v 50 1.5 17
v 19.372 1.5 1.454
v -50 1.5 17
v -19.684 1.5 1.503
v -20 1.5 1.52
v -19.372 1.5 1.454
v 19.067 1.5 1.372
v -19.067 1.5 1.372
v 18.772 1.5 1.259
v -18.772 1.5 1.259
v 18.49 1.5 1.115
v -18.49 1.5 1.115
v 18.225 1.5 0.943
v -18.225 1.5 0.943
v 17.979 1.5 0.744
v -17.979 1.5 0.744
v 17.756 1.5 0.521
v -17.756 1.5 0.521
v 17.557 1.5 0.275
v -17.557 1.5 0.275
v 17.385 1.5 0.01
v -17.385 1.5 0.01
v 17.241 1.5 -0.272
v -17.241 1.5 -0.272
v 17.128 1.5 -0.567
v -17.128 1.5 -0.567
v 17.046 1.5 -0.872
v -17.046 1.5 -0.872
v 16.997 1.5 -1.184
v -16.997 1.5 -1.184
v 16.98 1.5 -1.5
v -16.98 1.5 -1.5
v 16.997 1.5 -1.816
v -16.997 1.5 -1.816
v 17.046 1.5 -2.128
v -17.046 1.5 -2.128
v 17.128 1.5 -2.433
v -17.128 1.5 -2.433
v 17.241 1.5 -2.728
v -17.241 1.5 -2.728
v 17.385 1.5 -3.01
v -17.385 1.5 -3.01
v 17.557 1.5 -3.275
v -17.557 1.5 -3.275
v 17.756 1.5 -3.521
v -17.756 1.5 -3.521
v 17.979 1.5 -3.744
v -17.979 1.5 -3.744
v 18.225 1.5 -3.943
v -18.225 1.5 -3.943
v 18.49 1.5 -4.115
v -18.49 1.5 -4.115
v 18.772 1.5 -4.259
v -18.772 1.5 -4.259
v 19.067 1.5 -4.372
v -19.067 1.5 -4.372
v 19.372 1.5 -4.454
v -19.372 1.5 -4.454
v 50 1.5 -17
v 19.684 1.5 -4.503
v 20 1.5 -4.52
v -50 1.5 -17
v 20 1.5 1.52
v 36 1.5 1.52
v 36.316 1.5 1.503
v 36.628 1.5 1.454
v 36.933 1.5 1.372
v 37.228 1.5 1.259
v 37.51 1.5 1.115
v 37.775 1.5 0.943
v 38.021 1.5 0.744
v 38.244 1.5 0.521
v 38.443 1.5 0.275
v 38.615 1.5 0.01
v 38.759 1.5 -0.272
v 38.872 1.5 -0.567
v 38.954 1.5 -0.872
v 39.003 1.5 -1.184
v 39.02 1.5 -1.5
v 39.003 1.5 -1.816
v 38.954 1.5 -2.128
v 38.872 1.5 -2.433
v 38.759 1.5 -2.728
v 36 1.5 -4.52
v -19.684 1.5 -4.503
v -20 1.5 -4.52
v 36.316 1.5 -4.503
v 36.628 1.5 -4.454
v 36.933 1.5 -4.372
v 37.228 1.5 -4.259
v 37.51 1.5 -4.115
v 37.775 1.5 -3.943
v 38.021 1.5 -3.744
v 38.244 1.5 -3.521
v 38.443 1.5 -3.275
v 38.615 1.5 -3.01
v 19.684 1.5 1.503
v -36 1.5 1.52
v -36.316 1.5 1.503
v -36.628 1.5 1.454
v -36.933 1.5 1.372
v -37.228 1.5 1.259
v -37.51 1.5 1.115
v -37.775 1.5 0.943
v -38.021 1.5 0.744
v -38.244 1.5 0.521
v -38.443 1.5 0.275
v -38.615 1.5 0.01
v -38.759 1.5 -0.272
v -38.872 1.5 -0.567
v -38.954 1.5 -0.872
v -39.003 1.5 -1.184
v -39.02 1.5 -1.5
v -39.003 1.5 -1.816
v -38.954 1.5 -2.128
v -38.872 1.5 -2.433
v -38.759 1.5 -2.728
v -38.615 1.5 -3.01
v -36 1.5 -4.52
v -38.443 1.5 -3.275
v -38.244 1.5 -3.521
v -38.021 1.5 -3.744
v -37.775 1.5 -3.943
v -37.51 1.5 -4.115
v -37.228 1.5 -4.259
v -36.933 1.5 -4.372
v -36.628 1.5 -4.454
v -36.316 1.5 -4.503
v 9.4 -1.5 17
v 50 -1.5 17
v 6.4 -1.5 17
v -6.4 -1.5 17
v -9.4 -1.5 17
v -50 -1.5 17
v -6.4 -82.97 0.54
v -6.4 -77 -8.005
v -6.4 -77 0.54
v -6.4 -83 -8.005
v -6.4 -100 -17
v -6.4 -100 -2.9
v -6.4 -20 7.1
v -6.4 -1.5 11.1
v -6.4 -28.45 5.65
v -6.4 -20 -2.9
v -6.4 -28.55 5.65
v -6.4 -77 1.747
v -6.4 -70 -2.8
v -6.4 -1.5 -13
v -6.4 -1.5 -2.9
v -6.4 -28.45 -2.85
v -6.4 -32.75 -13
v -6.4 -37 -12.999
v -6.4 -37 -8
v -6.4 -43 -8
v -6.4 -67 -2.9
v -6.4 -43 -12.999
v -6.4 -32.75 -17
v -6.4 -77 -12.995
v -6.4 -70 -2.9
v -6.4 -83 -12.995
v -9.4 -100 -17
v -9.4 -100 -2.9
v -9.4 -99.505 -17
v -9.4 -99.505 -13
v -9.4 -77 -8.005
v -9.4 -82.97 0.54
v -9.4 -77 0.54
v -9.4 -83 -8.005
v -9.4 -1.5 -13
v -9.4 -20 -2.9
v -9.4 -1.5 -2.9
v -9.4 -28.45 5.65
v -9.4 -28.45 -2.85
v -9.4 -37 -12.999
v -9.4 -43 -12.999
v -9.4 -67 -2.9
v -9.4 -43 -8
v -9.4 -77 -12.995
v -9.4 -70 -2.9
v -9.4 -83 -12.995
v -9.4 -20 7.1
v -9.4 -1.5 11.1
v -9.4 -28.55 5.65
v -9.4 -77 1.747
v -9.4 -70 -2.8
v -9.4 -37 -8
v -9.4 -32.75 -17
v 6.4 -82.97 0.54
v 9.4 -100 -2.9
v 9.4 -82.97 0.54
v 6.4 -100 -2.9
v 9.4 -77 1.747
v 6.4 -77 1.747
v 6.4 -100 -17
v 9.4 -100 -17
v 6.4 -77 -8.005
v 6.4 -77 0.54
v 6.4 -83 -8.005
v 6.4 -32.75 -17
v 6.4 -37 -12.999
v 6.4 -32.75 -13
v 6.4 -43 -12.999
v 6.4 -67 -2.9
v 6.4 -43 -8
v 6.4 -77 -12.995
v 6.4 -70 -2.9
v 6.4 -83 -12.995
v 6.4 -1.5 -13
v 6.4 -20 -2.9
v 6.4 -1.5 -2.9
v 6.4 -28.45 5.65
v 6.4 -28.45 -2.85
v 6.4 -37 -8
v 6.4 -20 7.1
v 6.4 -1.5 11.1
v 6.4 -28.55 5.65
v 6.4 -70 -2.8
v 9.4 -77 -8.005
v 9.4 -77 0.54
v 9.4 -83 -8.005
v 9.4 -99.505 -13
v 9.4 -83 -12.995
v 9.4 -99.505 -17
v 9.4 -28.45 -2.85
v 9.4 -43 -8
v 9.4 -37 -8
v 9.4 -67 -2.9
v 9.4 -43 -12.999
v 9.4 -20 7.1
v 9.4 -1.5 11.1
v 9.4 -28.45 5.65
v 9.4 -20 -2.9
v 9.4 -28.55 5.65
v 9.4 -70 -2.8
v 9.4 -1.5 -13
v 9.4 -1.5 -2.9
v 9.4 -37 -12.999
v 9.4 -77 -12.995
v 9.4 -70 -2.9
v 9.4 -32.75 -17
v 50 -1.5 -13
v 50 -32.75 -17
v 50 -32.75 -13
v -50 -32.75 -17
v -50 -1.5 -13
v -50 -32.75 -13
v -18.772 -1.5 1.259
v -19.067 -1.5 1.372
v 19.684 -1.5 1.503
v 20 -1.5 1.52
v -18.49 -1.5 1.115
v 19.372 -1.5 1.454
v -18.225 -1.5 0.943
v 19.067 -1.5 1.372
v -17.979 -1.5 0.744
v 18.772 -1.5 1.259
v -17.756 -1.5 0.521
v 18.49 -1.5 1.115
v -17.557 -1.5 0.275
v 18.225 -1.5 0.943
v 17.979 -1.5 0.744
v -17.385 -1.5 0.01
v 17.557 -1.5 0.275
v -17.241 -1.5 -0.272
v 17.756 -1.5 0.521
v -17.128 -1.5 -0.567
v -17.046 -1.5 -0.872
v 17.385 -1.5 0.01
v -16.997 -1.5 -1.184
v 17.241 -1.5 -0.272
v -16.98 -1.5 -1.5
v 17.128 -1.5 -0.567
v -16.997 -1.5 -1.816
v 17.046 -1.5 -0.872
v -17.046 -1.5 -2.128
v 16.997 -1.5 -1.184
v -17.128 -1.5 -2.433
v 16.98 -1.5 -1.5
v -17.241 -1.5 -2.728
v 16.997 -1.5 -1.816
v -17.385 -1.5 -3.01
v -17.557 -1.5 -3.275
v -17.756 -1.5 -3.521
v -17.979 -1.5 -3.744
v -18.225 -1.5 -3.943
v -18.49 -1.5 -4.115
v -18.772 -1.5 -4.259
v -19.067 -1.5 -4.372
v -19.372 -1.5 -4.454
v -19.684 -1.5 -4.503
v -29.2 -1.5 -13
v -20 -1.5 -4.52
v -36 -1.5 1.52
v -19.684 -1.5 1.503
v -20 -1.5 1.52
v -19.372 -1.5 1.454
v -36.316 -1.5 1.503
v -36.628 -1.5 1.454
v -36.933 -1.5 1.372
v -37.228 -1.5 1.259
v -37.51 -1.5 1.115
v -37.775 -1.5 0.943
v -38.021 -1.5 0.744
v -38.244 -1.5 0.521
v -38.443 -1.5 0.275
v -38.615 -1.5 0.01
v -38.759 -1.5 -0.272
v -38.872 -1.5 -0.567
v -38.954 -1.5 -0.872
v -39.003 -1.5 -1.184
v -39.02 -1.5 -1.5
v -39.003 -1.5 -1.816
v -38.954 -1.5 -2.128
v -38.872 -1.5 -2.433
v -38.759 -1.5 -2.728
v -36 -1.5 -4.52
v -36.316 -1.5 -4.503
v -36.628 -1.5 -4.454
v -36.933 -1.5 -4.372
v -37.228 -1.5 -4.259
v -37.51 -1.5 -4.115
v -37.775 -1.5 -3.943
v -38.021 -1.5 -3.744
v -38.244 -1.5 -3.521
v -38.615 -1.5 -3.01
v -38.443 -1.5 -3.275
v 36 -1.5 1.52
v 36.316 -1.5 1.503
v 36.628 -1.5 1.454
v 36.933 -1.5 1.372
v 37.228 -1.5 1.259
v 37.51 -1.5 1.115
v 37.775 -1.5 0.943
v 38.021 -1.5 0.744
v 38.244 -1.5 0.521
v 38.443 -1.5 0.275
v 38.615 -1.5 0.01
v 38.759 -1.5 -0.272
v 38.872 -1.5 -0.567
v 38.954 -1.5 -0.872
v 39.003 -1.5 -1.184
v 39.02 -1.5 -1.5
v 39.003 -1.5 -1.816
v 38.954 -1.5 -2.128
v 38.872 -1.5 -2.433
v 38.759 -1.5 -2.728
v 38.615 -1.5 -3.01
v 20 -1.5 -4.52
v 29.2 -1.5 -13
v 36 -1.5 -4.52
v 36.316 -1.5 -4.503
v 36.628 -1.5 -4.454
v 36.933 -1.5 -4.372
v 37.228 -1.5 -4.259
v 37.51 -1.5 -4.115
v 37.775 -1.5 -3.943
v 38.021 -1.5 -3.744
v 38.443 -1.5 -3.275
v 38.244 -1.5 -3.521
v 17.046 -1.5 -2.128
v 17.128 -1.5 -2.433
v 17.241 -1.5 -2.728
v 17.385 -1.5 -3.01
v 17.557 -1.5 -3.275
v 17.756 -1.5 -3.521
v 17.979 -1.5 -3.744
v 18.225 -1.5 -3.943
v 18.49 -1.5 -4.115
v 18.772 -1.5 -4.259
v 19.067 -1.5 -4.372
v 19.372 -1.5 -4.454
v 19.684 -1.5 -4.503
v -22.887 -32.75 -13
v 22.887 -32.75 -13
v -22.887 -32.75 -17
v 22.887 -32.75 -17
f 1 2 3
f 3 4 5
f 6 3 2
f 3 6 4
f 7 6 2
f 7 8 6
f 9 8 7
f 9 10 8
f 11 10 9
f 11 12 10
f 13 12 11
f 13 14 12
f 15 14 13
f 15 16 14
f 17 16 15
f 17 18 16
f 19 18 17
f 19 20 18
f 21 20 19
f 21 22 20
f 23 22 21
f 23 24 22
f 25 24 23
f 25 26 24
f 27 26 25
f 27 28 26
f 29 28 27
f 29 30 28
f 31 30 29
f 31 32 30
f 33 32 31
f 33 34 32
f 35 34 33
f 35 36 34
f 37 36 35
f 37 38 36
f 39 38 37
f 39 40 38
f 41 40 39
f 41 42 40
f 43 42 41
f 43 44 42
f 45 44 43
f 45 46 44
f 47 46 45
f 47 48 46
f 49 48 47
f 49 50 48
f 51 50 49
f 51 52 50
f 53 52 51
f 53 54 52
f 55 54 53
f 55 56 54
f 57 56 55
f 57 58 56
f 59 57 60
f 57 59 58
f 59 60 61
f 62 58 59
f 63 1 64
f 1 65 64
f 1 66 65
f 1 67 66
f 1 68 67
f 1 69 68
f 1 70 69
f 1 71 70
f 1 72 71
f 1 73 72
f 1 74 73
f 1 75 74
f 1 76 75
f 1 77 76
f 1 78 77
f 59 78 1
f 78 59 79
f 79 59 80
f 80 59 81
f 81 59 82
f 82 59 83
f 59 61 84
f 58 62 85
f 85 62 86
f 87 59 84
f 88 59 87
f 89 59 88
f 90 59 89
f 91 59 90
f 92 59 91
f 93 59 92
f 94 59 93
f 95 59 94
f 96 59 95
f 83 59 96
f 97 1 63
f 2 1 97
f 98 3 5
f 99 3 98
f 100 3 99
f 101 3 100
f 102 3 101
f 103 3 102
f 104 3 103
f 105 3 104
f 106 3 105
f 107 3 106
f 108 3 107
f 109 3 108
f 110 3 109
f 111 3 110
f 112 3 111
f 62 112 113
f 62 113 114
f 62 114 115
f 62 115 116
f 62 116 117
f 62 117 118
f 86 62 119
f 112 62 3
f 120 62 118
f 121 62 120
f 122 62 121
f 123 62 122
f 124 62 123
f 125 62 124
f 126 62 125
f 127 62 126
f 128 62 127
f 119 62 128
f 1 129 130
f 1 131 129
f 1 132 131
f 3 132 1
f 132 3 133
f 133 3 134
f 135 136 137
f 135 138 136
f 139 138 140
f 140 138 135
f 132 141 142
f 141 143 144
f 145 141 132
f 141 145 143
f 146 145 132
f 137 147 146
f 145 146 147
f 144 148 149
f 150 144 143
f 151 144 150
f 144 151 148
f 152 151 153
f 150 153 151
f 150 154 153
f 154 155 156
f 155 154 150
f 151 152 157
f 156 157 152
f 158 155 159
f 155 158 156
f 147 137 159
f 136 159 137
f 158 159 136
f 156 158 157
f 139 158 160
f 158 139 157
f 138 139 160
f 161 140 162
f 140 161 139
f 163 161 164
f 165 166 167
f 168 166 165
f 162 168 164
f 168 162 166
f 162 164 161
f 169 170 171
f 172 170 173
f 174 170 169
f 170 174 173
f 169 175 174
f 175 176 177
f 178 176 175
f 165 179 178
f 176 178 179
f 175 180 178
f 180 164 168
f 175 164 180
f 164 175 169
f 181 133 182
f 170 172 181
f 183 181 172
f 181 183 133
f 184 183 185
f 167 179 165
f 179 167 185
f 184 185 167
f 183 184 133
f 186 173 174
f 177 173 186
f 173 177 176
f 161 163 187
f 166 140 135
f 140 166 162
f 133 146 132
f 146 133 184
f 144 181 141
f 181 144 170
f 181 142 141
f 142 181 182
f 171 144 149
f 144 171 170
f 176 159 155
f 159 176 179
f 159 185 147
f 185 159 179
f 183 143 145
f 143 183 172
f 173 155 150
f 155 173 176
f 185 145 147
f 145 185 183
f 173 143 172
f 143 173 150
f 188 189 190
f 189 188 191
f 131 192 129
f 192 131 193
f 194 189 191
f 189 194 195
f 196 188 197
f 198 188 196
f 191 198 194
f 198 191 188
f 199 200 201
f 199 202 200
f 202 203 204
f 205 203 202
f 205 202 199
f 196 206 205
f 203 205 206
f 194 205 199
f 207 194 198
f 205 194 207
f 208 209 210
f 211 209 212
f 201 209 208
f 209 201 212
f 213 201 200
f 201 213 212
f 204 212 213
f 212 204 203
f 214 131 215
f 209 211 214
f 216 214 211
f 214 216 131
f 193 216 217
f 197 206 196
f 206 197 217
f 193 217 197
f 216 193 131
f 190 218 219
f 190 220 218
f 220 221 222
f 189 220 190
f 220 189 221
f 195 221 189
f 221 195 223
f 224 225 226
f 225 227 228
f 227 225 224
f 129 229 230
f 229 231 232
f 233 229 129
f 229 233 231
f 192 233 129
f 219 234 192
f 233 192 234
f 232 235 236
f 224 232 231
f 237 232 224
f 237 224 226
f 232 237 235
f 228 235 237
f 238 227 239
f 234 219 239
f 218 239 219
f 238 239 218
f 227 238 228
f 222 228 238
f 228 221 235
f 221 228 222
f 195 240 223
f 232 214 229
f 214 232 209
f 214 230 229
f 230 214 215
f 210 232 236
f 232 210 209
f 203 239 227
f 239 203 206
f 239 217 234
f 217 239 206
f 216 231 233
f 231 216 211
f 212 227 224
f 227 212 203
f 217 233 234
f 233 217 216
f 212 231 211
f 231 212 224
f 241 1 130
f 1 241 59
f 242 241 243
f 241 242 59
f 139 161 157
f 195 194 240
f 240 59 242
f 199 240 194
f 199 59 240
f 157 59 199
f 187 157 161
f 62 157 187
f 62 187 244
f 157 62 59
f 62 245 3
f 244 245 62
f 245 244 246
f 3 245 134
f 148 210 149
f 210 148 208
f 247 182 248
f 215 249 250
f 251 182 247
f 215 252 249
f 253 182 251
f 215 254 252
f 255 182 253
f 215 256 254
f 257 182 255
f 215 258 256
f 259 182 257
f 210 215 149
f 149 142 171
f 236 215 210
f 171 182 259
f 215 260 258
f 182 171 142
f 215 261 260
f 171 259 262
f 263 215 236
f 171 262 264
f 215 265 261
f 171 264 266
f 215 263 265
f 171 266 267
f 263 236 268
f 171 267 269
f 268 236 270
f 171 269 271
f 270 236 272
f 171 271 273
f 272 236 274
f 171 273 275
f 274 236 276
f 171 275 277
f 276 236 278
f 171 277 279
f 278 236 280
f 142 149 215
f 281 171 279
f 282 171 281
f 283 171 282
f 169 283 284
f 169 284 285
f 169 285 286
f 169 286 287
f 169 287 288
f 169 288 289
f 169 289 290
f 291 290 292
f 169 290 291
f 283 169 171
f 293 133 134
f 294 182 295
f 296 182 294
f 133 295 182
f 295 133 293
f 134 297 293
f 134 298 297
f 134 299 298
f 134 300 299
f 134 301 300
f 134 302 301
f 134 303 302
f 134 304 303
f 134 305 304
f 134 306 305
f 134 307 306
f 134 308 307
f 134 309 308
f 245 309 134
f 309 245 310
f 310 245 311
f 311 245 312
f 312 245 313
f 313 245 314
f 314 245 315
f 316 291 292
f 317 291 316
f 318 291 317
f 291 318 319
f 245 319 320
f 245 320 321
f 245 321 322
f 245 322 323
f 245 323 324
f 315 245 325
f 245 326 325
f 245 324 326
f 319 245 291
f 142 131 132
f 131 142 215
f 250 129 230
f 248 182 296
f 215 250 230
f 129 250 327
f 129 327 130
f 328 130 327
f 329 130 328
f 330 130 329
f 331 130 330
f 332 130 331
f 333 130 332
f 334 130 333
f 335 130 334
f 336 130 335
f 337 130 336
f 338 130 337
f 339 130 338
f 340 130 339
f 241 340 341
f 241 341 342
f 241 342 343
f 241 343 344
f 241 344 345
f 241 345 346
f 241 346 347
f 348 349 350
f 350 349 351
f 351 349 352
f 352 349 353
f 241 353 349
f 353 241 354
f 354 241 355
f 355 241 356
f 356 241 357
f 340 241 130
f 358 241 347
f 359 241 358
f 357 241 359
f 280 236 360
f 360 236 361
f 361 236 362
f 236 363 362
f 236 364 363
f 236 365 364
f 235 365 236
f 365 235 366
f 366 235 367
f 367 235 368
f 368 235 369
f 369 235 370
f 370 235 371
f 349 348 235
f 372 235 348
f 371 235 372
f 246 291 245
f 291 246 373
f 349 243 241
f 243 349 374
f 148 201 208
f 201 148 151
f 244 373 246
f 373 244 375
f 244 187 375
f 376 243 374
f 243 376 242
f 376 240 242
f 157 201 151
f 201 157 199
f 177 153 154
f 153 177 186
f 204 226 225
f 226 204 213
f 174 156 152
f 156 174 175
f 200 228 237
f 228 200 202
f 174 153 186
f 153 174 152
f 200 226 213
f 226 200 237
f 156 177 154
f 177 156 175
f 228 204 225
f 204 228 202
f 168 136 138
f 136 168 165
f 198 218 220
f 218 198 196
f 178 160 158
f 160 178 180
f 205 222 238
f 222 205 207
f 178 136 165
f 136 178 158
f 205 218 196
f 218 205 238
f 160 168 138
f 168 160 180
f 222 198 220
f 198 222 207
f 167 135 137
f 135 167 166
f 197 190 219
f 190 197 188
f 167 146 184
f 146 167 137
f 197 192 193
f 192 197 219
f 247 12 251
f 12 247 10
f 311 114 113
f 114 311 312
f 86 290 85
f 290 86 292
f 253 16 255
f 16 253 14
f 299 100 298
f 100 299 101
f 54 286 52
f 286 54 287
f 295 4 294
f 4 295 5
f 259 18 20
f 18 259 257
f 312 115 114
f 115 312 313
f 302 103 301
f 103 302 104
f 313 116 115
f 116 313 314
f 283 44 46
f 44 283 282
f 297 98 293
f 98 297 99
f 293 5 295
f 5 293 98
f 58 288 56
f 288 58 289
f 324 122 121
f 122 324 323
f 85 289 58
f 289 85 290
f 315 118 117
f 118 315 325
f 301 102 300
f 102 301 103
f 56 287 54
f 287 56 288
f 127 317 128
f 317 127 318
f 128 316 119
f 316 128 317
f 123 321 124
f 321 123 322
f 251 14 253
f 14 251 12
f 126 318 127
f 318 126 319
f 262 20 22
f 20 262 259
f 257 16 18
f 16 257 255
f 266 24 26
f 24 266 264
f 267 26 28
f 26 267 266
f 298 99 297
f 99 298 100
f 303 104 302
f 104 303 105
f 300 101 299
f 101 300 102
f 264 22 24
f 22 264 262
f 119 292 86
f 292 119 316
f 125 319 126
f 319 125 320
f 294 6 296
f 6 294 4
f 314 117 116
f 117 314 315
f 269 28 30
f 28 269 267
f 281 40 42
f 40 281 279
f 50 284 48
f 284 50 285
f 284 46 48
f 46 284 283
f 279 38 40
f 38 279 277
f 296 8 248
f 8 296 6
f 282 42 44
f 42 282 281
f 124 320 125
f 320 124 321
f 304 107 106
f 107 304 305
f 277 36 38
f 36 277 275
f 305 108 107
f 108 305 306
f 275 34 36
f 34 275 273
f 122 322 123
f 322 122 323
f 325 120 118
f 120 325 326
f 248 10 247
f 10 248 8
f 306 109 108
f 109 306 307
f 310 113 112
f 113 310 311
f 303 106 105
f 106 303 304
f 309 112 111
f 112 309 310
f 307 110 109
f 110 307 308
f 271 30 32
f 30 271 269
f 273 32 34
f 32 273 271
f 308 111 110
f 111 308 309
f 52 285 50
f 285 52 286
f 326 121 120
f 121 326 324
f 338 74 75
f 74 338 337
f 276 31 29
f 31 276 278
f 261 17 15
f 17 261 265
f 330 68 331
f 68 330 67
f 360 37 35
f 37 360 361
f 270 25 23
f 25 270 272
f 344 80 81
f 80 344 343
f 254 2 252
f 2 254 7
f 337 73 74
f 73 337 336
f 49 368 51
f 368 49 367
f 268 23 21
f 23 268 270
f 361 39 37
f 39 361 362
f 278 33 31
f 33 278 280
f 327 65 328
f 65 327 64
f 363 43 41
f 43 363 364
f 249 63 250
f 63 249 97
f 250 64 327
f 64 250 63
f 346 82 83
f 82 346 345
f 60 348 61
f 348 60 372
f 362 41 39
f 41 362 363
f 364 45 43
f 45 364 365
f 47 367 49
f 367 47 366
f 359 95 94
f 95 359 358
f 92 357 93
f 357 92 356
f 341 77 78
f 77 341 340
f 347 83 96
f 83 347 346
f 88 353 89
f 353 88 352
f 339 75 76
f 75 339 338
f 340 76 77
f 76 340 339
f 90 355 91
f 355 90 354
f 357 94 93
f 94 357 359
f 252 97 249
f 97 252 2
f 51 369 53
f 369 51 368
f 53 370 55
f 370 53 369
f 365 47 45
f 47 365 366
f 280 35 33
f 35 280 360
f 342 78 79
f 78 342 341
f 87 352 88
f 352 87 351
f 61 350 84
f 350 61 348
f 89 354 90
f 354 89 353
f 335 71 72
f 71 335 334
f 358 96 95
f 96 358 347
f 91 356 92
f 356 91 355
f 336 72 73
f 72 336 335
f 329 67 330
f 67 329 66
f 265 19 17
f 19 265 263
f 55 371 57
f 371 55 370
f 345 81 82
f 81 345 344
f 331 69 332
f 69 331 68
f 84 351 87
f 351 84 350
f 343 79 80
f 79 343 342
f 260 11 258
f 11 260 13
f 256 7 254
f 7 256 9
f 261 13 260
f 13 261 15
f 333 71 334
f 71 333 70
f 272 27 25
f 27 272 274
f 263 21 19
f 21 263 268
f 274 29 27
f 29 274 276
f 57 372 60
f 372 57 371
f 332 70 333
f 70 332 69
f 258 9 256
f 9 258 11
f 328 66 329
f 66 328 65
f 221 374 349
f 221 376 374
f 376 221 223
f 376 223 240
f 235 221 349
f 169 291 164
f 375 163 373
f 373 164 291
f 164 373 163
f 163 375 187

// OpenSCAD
difference(){
union(){
difference(){
union(){
//main back plate
cube([100,3,34], center=true);

//right structure bottom square
translate([7.9,-50,-11.9])
cube([3,100,18], center=true);

//left structure bottom square
translate([-7.9,-50,-11.9])
cube([3,100,18], center=true);


translate([0,-15.625,-15])
cube([100,34.25,4], center=true);
};

//base plate leveling/cut
translate([0,-15.625,-19])
cube([100,234.25,4], center=true);

};


//left structure upper triangle
difference(){
//whole_triangle
hull(){
translate([-7.9,0,6.5])
cube([3,3,21], center=true);

translate([-7.9,-98.5,-3.4])
cube([3,3,1], center=true);
};

//hole_01
hull(){
translate([-7.9,0,4.1])
cube([6,3,14], center=true);

translate([-7.9,-18.5,2.1])
cube([6,3,10], center=true);
};

//hole_02
hull(){
translate([-7.9,-28.5,1.4])
cube([6,0.1,8.5], center=true);

translate([-7.9,-68.5,-2.85])
cube([6,3,0.1], center=true);
};

};



//right structure upper triangle
difference(){
//whole_triangle
hull(){
translate([7.9,0,6.5])
cube([3,3,21], center=true);

translate([7.9,-98.5,-3.4])
cube([3,3,1], center=true);
};

//hole_01
hull(){
translate([7.9,0,4.1])
cube([6,3,14], center=true);

translate([7.9,-18.5,2.1])
cube([6,3,10], center=true);
};

//hole_02
hull(){
translate([7.9,-28.5,1.4])
cube([6,0.1,8.5], center=true);

translate([7.9,-68.5,-2.85])
cube([6,3,0.1], center=true);
};

};


hull(){
    //rotated right
    translate([12.2,0,-6.60]){
    rotate([0,90,0])
    //right structure upper triangle
    difference(){
    //whole_triangle
    hull(){
    translate([7.9,0,6.5])
    cube([3,3,21], center=true);

    translate([7.9,-98.5,-3.4])
    cube([3,3,1], center=true);
    };

    //hole_01
    hull(){
    translate([7.9,0,4.1])
    cube([6,3,14], center=true);

    translate([7.9,-18.5,2.1])
    cube([6,3,10], center=true);
    };

    //hole_02
    hull(){
    translate([7.9,-28.5,1.4])
    cube([6,0.1,8.5], center=true);

    translate([7.9,-68.5,-2.85])
    cube([6,3,0.1], center=true);
    };

    };

    }
    ;
    //bottom part
    //rotated right
    translate([12.2,0,-7.6]){
        rotate([0,90,0])
            //right structure upper triangle
            difference(){
            //whole_triangle
            hull(){
            translate([7.9,0,6.5])
            cube([3,3,21], center=true);

            translate([7.9,-98.5,-3.4])
            cube([3,3,1], center=true);
            };

            //hole_01
            hull(){
            translate([7.9,0,4.1])
            cube([6,3,14], center=true);

            translate([7.9,-18.5,2.1])
            cube([6,3,10], center=true);
            };

            //hole_02
            hull(){
            translate([7.9,-28.5,1.4])
            cube([6,0.1,8.5], center=true);

            translate([7.9,-68.5,-2.85])
            cube([6,3,0.1], center=true);
            };

            };

    }
    ;
}
;


//left_structurer_bottom
hull(){

//upper part
union(){
//rotated left
translate([-12.2,0,-6.60]){
rotate([0,-90,0]){
//right structure upper triangle
difference(){
//whole_triangle
hull(){
translate([-7.9,0,6.5])
cube([3,3,21], center=true);

translate([-7.9,-98.5,-3.4])
cube([3,3,1], center=true);
};

//hole_01
hull(){
translate([-7.9,0,4.1])
cube([6,3,14], center=true);

translate([-7.9,-18.5,2.1])
cube([6,3,10], center=true);
};

//hole_02
hull(){
translate([-7.9,-28.5,1.4])
cube([6,0.1,8.5], center=true);

translate([-7.9,-68.5,-2.85])
cube([6,3,0.1], center=true);
};

};
};
};
};

//lower part
translate([0,0,-11.1]){
union(){
//rotated left
translate([-12.2,0,3.5]){
rotate([0,-90,0]){
//right structure upper triangle
difference(){
//whole_triangle
hull(){
translate([-7.9,0,6.5])
cube([3,3,21], center=true);

translate([-7.9,-98.5,-3.4])
cube([3,3,1], center=true);
};

//hole_01
hull(){
translate([-7.9,0,4.1])
cube([6,3,14], center=true);

translate([-7.9,-18.5,2.1])
cube([6,3,10], center=true);
};

//hole_02
hull(){
translate([-7.9,-28.5,1.4])
cube([6,0.1,8.5], center=true);

translate([-7.9,-68.5,-2.85])
cube([6,3,0.1], center=true);
};

};
};
};
};
};
}
;
};



//holes for fasteners
union(){
translate([0,-40,-10.5])
        cube([70,6,4.999],center=true);

translate([0,-80,-10.5])
        cube([70,6,4.99],center=true);

translate([0,-80,3.04])
        cube([70,6,4.999],center=true);

        
//left hole cutout
hull(){
translate([-36,50,-1.5])
rotate([90,0,0])
cylinder(100,3.02,3.02, $fn=60);

translate([-20,50,-1.5])
rotate([90,0,0])
cylinder(100,3.02,3.02, $fn=60);

}
;


//right hole cutout
hull(){
translate([36,50,-1.5])
rotate([90,0,0])
cylinder(100,3.02,3.02, $fn=60);

translate([20,50,-1.5])
rotate([90,0,0])
cylinder(100,3.02,3.02, $fn=60);

};
};

}
;
